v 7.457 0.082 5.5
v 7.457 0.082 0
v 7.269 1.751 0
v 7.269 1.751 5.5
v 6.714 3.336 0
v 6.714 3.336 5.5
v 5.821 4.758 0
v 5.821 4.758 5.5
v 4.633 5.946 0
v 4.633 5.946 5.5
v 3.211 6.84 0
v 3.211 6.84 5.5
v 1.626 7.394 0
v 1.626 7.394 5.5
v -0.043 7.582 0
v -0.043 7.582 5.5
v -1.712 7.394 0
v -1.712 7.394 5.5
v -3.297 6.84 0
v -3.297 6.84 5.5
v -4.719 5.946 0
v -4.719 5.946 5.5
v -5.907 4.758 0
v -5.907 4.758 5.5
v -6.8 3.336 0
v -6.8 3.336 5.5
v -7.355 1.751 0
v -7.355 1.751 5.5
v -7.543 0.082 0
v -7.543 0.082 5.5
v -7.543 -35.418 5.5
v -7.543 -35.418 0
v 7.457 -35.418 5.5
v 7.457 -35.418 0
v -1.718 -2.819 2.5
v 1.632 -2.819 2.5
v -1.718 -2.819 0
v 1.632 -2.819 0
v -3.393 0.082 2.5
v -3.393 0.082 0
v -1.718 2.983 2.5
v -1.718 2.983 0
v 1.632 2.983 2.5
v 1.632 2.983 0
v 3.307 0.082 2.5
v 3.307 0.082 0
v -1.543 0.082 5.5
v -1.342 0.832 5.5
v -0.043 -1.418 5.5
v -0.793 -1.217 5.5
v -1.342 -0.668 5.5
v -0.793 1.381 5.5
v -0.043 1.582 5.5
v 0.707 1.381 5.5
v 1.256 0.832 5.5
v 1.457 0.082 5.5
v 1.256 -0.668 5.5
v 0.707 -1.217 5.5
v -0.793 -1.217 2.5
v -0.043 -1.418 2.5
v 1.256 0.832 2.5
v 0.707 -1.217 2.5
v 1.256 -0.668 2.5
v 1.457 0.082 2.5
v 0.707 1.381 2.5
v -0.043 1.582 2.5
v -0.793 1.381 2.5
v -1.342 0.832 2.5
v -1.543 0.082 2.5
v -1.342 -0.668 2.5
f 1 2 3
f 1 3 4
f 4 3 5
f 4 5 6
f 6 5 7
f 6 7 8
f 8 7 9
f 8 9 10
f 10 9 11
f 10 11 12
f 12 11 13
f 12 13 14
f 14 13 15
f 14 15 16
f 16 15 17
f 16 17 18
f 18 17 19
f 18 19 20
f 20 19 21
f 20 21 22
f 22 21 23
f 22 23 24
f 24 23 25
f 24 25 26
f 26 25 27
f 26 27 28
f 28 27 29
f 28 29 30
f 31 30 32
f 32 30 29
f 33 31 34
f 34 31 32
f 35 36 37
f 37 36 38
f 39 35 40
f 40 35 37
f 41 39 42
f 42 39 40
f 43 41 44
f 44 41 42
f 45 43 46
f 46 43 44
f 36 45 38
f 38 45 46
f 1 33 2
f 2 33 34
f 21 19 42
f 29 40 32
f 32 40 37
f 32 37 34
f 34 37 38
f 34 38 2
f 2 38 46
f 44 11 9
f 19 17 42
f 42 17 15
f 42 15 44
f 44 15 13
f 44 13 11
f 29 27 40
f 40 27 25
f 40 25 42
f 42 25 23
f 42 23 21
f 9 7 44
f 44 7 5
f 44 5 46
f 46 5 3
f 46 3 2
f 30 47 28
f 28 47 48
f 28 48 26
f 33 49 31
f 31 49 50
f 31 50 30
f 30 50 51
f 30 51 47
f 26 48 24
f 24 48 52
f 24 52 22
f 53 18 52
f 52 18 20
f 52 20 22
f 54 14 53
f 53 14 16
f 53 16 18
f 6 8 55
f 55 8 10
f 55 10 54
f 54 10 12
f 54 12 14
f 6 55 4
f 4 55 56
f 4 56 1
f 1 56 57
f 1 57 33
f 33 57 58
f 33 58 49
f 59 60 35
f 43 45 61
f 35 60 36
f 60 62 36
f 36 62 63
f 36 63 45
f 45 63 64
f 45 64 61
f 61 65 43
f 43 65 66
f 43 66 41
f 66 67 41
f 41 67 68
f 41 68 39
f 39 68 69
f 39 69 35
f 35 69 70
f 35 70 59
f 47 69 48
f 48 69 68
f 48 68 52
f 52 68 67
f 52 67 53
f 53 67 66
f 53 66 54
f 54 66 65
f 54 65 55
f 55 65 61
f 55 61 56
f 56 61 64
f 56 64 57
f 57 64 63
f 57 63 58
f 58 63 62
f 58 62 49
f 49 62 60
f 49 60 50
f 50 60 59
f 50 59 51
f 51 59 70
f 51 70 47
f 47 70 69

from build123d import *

# Parameters (mm, degrees)
BOSS_EXTRUDE1_DEPTH = 2.5
SKETCH3_R           = 1.5
BOSS_EXTRUDE2_DEPTH = 3


with BuildPart() as part:
    # Sketch1 → Boss-Extrude1 (new body)
    with BuildSketch(Plane.XY):
        with BuildLine():
            ThreePointArc((7.457118183, 0.082245335), (-0.042881817, 7.582245335), (-7.542881817, 0.082245335))
            Line((-7.542881817, 0.082245335), (-7.542881817, -35.417754665))
            Line((-7.542881817, -35.417754665), (7.457118183, -35.417754665))
            Line((7.457118183, -35.417754665), (7.457118183, 0.082245335))
        make_face()
        Polygon((1.632118183, 2.983430437), (3.307118183, 0.082245335), (1.632118183, -2.818939768), (-0.042881817, -2.818939768), (-1.717881817, -2.818939768), (-3.392881817, 0.082245335), (-1.717881817, 2.983430437), (-0.042881817, 2.983430437), align=None, mode=Mode.SUBTRACT)
    extrude(amount=BOSS_EXTRUDE1_DEPTH)

    # Sketch3 → Boss-Extrude2 (add)
    with BuildSketch(Plane.XY.offset(2.5)):
        with BuildLine():
            Line((7.457118183, 0.082245335), (7.457118183, -35.417754665))
            Line((7.457118183, -35.417754665), (-7.542881817, -35.417754665))
            Line((-7.542881817, -35.417754665), (-7.542881817, 0.082245335))
            ThreePointArc((-7.542881817, 0.082245335), (-0.042881817, 7.582245335), (7.457118183, 0.082245335))
        make_face()
        with Locations((-0.042881817, 0.082245335)):
            Circle(SKETCH3_R, mode=Mode.SUBTRACT)
    extrude(amount=BOSS_EXTRUDE2_DEPTH)


solid = part.part
